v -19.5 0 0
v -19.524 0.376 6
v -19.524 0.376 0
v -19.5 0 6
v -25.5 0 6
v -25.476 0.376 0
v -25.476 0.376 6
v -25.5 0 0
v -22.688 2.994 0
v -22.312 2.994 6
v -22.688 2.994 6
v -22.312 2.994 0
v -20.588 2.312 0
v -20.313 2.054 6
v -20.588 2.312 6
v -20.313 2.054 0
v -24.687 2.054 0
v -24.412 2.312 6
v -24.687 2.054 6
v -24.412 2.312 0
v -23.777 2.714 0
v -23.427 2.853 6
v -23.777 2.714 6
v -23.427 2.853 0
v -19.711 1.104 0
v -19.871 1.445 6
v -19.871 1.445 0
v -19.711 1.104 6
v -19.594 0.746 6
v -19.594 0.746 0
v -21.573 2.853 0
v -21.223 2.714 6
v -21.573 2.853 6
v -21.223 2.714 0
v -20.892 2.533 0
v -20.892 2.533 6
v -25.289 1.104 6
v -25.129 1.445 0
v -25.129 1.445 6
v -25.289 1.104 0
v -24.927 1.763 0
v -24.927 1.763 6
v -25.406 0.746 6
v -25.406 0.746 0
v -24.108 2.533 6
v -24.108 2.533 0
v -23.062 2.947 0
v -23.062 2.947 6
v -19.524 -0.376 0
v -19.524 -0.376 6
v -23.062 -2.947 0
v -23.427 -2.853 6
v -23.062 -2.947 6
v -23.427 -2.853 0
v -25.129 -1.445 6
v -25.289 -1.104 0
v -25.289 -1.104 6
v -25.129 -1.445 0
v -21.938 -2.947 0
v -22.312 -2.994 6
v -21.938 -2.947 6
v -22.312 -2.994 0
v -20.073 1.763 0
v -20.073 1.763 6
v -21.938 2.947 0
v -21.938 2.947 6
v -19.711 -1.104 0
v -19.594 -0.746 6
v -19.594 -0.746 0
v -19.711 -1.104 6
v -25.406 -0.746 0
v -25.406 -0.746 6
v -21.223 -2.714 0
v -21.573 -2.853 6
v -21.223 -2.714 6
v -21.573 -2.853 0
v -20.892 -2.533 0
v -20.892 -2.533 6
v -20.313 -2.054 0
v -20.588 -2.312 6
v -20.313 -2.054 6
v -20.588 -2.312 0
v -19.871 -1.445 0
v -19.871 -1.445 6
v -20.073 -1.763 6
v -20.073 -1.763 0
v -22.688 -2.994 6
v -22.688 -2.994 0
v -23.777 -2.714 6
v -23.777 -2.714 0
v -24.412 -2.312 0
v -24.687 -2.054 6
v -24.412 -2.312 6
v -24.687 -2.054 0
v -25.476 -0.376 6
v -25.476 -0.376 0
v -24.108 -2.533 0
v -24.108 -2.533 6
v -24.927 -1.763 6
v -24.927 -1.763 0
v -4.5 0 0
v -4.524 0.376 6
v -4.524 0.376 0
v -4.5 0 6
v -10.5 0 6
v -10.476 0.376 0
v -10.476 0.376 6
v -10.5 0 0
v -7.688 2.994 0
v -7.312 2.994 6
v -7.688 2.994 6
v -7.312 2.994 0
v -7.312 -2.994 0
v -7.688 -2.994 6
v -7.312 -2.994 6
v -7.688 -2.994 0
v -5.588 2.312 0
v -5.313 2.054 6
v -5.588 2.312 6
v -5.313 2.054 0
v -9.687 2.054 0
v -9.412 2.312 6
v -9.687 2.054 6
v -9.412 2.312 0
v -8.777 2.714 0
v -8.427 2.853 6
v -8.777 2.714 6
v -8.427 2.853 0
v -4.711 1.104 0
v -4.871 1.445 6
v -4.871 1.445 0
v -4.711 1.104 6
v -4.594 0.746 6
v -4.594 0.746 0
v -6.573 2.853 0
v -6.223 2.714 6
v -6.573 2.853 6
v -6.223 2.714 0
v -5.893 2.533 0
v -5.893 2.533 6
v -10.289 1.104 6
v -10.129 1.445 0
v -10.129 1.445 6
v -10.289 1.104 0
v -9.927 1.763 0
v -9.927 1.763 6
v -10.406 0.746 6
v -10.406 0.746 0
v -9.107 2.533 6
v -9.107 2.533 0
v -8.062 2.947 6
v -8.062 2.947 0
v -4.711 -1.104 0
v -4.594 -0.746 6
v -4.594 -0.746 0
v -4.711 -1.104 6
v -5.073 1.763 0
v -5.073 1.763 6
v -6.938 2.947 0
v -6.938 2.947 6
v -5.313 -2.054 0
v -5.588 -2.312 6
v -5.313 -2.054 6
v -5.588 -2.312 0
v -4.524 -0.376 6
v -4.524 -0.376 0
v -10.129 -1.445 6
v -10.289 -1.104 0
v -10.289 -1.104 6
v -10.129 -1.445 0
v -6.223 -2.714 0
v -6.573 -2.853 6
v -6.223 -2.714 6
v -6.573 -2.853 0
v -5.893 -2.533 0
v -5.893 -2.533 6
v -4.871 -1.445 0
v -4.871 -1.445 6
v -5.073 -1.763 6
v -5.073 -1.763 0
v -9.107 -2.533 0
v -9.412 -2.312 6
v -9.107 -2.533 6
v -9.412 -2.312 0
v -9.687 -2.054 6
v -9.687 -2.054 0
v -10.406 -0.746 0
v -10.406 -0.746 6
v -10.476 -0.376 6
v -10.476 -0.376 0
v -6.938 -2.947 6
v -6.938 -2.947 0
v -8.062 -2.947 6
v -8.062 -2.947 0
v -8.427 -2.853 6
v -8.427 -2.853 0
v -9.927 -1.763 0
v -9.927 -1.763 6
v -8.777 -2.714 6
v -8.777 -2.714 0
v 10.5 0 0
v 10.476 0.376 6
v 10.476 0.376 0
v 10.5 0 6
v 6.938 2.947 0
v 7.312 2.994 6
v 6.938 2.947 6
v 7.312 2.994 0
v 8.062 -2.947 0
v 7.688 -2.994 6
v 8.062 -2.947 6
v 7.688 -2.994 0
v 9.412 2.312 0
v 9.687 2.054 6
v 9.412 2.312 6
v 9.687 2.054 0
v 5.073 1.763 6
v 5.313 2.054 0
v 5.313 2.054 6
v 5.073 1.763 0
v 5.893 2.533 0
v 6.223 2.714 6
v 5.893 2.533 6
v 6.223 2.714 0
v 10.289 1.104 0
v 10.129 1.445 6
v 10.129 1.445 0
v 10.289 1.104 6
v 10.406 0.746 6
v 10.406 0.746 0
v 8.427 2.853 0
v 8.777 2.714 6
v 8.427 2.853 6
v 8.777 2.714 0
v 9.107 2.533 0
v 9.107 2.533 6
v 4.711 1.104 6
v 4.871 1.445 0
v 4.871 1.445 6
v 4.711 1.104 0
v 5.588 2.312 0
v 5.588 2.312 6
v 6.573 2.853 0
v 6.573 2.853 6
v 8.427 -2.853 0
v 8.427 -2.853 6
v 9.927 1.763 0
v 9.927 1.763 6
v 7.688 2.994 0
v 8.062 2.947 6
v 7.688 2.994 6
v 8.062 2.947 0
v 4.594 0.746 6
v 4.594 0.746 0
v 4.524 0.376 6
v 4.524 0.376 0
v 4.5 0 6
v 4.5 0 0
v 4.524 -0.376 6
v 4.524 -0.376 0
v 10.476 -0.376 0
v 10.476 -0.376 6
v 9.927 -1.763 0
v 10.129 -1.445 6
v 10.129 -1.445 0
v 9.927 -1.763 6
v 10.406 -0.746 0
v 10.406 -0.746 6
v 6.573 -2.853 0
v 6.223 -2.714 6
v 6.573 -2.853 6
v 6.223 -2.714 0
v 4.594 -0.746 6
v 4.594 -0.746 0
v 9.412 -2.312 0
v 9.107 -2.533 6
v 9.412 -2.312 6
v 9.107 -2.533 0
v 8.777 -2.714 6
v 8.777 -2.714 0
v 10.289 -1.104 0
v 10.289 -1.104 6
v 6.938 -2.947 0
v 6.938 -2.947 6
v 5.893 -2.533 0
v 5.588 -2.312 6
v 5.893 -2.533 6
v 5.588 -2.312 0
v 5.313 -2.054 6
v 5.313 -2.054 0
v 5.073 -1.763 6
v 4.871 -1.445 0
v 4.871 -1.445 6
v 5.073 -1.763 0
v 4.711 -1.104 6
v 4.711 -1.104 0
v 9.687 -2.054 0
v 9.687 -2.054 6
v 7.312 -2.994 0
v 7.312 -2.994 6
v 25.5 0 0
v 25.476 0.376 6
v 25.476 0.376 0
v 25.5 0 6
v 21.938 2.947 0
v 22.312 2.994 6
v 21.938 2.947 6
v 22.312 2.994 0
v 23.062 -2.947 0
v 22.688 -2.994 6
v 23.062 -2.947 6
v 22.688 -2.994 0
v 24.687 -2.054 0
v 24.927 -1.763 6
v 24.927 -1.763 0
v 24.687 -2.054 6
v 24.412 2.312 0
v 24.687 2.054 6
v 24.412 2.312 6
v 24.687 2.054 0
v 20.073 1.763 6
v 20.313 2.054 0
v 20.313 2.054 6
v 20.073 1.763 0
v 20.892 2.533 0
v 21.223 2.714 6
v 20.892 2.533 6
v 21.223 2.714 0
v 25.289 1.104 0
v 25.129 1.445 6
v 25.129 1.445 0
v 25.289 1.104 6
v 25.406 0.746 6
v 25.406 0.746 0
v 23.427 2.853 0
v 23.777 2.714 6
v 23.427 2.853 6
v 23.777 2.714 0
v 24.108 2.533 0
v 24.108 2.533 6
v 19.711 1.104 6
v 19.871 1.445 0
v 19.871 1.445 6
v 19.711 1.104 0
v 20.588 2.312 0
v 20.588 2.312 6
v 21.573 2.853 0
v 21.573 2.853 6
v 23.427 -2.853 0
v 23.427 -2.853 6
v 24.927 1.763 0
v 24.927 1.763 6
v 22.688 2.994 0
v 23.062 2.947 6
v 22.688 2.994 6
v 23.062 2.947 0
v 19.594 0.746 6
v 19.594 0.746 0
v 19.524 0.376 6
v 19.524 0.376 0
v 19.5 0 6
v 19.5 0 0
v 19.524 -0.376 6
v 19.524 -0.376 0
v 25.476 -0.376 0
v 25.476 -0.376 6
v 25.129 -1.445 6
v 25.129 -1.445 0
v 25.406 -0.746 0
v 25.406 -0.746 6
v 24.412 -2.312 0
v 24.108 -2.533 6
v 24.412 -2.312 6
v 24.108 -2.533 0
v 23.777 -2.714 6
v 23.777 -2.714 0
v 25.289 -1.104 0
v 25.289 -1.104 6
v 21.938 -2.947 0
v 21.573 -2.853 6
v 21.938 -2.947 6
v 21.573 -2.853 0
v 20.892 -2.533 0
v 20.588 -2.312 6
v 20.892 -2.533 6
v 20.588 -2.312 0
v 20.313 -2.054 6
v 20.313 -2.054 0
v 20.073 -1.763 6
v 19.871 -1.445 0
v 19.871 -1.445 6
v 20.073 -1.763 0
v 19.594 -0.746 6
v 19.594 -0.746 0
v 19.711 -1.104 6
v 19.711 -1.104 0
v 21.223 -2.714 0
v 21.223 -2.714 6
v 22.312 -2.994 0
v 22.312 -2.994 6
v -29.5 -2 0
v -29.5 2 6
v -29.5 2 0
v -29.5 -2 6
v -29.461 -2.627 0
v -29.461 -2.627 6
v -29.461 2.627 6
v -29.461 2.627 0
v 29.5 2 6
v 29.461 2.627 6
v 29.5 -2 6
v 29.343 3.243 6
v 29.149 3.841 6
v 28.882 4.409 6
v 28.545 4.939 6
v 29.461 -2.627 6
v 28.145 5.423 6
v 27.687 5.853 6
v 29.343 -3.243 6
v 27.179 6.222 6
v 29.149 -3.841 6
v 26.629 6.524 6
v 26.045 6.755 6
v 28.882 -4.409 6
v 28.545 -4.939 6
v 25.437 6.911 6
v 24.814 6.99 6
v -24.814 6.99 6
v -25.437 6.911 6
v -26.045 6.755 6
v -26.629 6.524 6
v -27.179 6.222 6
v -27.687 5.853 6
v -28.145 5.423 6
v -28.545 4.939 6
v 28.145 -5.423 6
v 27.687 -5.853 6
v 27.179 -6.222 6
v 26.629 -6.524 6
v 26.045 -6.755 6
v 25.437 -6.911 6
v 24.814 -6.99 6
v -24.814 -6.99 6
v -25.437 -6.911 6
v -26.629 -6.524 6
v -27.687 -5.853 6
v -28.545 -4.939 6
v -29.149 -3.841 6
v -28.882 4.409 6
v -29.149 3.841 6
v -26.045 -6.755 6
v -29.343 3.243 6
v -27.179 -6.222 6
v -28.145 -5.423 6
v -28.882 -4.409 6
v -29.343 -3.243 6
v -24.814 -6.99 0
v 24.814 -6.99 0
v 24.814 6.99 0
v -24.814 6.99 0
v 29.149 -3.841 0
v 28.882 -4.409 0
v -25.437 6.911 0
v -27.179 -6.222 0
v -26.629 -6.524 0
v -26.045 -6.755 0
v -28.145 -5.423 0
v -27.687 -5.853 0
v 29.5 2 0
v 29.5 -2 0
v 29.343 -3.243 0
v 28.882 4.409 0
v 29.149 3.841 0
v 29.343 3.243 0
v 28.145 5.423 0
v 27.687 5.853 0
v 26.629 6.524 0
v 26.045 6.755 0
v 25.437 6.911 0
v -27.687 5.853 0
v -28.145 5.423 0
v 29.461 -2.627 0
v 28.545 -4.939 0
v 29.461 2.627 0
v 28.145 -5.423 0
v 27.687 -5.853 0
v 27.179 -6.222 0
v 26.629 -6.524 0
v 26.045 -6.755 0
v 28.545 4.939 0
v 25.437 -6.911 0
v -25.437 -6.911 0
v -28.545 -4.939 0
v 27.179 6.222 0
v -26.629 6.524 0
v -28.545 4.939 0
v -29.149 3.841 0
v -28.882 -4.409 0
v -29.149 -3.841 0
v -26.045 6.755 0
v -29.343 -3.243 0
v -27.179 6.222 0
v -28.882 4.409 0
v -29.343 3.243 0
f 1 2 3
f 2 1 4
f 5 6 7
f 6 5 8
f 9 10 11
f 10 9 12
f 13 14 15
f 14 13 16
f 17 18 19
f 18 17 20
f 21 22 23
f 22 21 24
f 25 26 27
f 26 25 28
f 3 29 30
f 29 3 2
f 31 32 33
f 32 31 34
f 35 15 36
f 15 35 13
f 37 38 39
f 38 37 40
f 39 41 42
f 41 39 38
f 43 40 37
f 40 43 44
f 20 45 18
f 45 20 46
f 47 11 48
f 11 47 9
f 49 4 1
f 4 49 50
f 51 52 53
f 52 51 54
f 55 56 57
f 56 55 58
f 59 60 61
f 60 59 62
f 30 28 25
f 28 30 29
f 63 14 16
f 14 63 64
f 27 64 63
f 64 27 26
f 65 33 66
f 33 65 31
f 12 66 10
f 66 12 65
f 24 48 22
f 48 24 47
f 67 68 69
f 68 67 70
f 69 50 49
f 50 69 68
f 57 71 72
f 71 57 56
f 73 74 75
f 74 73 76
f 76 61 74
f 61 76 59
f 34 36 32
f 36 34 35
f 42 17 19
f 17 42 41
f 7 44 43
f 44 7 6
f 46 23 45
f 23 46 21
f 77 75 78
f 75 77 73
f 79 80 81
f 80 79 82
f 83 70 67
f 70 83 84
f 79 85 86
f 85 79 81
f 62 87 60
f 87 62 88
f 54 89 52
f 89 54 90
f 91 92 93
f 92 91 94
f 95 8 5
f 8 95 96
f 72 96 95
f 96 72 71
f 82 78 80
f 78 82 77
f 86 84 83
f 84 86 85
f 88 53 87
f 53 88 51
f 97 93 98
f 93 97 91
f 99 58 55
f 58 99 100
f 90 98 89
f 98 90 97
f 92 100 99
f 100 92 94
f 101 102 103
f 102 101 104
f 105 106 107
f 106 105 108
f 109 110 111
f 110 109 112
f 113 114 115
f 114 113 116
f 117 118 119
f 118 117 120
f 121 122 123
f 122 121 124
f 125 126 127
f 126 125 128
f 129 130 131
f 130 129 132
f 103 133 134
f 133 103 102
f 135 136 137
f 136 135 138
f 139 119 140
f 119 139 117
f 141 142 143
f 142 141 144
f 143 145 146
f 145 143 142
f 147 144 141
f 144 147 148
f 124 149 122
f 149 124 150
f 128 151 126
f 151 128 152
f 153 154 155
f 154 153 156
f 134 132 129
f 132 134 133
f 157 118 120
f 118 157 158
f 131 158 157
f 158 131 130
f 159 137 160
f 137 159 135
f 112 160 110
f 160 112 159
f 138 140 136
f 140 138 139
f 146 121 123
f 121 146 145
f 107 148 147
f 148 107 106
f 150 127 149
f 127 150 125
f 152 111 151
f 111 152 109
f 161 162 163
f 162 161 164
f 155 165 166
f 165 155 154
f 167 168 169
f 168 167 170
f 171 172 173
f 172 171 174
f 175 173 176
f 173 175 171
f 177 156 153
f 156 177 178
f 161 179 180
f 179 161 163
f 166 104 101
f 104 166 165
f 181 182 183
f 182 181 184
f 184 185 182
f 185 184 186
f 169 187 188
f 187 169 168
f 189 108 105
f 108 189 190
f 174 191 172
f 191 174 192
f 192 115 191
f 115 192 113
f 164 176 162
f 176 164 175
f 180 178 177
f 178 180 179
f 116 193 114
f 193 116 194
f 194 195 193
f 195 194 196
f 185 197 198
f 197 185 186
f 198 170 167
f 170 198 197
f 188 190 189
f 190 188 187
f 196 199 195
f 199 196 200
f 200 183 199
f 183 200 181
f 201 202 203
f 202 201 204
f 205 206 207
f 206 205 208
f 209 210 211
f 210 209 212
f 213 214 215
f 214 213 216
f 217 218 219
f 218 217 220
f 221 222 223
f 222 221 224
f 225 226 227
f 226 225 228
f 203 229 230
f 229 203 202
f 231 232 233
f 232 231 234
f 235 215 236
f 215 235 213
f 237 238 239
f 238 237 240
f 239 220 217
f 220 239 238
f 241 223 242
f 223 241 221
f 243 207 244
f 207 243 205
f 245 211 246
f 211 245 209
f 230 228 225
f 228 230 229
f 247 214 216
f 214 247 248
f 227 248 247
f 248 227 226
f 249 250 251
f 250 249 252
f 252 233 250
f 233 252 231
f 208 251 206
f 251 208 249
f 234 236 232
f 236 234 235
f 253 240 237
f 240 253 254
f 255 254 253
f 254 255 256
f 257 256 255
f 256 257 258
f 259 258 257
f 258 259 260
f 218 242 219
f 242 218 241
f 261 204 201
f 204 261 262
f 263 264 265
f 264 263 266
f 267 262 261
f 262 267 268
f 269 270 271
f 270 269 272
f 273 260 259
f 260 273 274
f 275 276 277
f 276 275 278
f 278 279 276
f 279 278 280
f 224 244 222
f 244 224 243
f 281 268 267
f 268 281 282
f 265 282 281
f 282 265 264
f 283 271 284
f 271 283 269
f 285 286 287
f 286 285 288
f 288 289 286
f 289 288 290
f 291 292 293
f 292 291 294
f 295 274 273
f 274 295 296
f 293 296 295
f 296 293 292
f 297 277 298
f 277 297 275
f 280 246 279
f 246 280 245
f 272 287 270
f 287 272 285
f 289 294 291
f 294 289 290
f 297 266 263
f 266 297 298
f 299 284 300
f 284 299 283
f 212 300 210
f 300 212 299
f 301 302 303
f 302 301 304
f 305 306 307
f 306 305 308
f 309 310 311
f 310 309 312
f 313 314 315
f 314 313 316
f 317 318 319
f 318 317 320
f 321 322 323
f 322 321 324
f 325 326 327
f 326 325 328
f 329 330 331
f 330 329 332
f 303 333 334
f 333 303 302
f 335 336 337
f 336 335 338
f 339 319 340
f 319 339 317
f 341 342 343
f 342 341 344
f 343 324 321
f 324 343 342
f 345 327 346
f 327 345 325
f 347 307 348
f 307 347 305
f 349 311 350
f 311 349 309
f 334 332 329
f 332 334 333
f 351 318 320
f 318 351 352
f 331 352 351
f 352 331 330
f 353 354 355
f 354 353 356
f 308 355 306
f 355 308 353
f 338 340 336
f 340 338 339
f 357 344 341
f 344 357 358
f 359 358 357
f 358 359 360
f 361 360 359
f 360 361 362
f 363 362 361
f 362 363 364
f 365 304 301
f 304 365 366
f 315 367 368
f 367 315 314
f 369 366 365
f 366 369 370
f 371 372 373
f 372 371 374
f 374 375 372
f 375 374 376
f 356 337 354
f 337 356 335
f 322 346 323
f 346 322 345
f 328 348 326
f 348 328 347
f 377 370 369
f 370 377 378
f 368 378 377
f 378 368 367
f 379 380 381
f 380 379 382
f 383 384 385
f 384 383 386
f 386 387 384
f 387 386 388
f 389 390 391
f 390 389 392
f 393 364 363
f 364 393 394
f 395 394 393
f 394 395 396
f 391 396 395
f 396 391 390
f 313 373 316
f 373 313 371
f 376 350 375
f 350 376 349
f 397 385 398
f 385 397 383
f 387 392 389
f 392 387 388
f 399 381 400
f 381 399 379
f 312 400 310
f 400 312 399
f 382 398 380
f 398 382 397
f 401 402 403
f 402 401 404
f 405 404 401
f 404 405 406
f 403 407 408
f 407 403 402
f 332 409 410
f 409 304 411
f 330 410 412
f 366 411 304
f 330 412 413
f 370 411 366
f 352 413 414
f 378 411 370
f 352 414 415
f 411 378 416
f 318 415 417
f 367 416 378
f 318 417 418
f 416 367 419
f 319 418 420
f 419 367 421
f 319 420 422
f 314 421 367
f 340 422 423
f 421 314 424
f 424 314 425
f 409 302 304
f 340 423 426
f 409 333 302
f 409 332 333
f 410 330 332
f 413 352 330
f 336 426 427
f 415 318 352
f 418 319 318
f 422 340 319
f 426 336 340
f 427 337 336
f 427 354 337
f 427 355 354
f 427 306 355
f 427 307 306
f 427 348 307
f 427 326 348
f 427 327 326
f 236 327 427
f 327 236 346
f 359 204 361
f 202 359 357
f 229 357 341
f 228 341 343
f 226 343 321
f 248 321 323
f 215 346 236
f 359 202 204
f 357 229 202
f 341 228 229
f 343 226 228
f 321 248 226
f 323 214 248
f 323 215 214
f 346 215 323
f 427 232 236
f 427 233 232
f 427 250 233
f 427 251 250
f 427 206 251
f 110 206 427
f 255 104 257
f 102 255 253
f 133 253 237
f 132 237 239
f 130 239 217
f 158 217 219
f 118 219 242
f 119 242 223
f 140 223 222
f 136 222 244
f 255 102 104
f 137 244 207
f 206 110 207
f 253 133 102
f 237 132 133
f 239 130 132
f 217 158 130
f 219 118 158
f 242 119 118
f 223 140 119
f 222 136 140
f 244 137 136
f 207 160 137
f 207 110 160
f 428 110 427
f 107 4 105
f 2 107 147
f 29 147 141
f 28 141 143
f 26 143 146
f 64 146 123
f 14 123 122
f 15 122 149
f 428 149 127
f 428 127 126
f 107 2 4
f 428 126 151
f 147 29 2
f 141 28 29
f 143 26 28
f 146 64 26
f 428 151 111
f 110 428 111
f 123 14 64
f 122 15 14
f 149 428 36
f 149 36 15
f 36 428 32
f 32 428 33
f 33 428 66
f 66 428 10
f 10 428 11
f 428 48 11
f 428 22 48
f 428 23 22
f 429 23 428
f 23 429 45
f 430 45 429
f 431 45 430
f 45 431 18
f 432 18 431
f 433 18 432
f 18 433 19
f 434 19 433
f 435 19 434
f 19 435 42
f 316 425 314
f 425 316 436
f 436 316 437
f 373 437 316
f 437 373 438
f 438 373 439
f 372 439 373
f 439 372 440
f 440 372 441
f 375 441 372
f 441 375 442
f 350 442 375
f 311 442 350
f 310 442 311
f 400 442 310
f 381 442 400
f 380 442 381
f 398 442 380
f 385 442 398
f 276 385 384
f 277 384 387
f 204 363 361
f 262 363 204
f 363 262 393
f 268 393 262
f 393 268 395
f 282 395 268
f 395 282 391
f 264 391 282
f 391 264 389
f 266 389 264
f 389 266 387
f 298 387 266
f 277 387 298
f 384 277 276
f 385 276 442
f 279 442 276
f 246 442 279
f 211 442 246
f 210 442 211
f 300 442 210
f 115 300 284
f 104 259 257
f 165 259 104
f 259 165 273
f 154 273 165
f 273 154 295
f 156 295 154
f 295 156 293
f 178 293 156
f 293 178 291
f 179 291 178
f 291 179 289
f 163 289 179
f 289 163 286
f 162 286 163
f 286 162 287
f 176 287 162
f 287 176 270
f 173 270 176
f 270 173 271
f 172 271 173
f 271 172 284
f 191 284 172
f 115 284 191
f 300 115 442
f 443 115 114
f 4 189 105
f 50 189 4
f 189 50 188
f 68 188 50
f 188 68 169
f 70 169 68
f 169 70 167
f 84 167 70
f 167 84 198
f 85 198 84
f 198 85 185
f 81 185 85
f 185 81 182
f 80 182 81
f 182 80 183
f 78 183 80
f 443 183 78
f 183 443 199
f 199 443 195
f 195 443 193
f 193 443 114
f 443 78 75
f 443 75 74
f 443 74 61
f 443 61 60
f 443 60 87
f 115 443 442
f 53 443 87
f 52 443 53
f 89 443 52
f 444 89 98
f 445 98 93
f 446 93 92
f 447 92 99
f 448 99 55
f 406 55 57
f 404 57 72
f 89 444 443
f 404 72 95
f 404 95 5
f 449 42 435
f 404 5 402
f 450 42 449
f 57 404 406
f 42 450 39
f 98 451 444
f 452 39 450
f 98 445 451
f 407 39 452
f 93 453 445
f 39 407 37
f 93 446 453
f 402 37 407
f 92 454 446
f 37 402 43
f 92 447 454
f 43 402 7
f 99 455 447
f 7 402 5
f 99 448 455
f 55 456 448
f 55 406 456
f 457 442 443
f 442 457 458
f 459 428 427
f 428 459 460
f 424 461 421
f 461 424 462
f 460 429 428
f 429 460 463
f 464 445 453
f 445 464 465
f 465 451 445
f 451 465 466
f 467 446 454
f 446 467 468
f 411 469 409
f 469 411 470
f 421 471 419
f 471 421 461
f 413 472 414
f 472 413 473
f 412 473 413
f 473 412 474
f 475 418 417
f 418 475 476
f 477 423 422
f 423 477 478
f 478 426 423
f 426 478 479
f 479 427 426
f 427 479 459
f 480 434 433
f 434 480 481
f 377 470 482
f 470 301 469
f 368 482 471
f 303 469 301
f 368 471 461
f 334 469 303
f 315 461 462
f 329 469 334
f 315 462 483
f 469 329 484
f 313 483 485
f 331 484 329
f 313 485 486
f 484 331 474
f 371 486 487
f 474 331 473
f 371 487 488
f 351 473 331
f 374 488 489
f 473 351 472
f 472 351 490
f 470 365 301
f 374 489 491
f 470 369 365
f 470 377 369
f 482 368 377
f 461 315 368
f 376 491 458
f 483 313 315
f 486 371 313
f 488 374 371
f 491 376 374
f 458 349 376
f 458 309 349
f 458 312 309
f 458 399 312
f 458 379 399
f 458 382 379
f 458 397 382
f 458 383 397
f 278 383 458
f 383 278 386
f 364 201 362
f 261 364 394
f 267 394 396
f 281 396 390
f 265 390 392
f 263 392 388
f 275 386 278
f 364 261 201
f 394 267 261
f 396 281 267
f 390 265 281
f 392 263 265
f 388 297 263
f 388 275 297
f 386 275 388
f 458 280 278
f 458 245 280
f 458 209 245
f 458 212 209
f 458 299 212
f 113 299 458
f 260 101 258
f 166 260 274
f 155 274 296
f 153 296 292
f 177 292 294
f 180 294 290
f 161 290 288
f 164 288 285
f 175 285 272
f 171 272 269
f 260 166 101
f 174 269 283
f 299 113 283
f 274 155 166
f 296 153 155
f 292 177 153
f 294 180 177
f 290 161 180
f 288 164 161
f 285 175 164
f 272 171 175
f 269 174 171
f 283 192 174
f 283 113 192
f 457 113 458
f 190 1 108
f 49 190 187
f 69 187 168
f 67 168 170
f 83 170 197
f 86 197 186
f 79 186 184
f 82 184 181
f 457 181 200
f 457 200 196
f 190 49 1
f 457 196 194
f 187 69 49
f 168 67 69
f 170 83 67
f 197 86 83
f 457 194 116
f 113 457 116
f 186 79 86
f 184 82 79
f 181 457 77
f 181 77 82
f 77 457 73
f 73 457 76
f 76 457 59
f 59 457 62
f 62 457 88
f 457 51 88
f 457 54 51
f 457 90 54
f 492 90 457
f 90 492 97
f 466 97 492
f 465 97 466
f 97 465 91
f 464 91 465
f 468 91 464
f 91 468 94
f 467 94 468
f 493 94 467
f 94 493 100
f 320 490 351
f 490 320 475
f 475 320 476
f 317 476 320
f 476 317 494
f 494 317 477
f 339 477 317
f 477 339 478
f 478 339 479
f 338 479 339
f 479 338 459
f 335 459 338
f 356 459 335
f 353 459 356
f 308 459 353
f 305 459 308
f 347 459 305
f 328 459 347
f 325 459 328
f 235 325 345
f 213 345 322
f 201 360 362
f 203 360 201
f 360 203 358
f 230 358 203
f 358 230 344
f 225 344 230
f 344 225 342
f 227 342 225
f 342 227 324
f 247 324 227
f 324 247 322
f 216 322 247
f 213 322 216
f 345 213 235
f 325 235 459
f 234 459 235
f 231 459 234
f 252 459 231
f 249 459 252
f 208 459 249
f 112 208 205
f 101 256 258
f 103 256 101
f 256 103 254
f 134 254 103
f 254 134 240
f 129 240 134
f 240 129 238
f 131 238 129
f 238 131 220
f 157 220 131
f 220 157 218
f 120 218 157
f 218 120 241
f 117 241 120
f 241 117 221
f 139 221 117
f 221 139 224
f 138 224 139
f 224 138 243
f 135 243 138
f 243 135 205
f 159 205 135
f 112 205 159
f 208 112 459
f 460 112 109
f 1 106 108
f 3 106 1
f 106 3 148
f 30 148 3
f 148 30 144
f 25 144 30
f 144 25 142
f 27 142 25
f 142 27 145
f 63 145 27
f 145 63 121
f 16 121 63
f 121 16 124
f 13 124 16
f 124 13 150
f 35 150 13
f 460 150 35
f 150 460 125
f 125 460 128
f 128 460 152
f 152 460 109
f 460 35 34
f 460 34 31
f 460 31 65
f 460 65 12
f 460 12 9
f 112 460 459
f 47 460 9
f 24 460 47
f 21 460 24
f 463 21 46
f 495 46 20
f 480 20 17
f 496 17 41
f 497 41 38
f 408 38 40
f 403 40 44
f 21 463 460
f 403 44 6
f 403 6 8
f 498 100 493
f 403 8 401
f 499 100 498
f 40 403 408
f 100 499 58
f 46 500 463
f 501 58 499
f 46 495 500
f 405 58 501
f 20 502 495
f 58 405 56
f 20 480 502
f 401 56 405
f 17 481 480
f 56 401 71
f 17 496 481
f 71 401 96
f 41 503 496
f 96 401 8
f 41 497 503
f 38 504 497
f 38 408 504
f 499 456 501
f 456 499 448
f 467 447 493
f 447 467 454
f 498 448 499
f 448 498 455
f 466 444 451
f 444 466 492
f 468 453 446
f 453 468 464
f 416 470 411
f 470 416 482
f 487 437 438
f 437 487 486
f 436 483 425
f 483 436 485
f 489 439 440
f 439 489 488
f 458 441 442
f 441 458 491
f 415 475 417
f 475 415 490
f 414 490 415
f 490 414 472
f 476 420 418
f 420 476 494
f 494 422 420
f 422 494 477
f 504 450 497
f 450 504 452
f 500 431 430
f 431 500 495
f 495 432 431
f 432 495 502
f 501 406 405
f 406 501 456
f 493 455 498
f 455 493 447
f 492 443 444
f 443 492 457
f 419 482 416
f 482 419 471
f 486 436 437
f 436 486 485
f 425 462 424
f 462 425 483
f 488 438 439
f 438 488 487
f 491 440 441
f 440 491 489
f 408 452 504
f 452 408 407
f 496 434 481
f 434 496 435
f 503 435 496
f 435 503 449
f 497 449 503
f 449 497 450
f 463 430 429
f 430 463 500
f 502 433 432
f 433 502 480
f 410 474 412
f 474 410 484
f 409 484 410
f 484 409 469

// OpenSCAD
$fn = 50;


difference() {
	union() {
		hull() {
			translate(v = [-24.5000000000, 2.0000000000, 0]) {
				cylinder(h = 6, r = 5);
			}
			translate(v = [24.5000000000, 2.0000000000, 0]) {
				cylinder(h = 6, r = 5);
			}
			translate(v = [-24.5000000000, -2.0000000000, 0]) {
				cylinder(h = 6, r = 5);
			}
			translate(v = [24.5000000000, -2.0000000000, 0]) {
				cylinder(h = 6, r = 5);
			}
		}
	}
	union() {
		translate(v = [-22.5000000000, 0.0000000000, 0]) {
			translate(v = [0, 0, -100]) {
				cylinder(h = 200, r = 3.0000000000);
			}
		}
		translate(v = [-7.5000000000, 0.0000000000, 0]) {
			translate(v = [0, 0, -100]) {
				cylinder(h = 200, r = 3.0000000000);
			}
		}
		translate(v = [7.5000000000, 0.0000000000, 0]) {
			translate(v = [0, 0, -100]) {
				cylinder(h = 200, r = 3.0000000000);
			}
		}
		translate(v = [22.5000000000, 0.0000000000, 0]) {
			translate(v = [0, 0, -100]) {
				cylinder(h = 200, r = 3.0000000000);
			}
		}
	}
}
